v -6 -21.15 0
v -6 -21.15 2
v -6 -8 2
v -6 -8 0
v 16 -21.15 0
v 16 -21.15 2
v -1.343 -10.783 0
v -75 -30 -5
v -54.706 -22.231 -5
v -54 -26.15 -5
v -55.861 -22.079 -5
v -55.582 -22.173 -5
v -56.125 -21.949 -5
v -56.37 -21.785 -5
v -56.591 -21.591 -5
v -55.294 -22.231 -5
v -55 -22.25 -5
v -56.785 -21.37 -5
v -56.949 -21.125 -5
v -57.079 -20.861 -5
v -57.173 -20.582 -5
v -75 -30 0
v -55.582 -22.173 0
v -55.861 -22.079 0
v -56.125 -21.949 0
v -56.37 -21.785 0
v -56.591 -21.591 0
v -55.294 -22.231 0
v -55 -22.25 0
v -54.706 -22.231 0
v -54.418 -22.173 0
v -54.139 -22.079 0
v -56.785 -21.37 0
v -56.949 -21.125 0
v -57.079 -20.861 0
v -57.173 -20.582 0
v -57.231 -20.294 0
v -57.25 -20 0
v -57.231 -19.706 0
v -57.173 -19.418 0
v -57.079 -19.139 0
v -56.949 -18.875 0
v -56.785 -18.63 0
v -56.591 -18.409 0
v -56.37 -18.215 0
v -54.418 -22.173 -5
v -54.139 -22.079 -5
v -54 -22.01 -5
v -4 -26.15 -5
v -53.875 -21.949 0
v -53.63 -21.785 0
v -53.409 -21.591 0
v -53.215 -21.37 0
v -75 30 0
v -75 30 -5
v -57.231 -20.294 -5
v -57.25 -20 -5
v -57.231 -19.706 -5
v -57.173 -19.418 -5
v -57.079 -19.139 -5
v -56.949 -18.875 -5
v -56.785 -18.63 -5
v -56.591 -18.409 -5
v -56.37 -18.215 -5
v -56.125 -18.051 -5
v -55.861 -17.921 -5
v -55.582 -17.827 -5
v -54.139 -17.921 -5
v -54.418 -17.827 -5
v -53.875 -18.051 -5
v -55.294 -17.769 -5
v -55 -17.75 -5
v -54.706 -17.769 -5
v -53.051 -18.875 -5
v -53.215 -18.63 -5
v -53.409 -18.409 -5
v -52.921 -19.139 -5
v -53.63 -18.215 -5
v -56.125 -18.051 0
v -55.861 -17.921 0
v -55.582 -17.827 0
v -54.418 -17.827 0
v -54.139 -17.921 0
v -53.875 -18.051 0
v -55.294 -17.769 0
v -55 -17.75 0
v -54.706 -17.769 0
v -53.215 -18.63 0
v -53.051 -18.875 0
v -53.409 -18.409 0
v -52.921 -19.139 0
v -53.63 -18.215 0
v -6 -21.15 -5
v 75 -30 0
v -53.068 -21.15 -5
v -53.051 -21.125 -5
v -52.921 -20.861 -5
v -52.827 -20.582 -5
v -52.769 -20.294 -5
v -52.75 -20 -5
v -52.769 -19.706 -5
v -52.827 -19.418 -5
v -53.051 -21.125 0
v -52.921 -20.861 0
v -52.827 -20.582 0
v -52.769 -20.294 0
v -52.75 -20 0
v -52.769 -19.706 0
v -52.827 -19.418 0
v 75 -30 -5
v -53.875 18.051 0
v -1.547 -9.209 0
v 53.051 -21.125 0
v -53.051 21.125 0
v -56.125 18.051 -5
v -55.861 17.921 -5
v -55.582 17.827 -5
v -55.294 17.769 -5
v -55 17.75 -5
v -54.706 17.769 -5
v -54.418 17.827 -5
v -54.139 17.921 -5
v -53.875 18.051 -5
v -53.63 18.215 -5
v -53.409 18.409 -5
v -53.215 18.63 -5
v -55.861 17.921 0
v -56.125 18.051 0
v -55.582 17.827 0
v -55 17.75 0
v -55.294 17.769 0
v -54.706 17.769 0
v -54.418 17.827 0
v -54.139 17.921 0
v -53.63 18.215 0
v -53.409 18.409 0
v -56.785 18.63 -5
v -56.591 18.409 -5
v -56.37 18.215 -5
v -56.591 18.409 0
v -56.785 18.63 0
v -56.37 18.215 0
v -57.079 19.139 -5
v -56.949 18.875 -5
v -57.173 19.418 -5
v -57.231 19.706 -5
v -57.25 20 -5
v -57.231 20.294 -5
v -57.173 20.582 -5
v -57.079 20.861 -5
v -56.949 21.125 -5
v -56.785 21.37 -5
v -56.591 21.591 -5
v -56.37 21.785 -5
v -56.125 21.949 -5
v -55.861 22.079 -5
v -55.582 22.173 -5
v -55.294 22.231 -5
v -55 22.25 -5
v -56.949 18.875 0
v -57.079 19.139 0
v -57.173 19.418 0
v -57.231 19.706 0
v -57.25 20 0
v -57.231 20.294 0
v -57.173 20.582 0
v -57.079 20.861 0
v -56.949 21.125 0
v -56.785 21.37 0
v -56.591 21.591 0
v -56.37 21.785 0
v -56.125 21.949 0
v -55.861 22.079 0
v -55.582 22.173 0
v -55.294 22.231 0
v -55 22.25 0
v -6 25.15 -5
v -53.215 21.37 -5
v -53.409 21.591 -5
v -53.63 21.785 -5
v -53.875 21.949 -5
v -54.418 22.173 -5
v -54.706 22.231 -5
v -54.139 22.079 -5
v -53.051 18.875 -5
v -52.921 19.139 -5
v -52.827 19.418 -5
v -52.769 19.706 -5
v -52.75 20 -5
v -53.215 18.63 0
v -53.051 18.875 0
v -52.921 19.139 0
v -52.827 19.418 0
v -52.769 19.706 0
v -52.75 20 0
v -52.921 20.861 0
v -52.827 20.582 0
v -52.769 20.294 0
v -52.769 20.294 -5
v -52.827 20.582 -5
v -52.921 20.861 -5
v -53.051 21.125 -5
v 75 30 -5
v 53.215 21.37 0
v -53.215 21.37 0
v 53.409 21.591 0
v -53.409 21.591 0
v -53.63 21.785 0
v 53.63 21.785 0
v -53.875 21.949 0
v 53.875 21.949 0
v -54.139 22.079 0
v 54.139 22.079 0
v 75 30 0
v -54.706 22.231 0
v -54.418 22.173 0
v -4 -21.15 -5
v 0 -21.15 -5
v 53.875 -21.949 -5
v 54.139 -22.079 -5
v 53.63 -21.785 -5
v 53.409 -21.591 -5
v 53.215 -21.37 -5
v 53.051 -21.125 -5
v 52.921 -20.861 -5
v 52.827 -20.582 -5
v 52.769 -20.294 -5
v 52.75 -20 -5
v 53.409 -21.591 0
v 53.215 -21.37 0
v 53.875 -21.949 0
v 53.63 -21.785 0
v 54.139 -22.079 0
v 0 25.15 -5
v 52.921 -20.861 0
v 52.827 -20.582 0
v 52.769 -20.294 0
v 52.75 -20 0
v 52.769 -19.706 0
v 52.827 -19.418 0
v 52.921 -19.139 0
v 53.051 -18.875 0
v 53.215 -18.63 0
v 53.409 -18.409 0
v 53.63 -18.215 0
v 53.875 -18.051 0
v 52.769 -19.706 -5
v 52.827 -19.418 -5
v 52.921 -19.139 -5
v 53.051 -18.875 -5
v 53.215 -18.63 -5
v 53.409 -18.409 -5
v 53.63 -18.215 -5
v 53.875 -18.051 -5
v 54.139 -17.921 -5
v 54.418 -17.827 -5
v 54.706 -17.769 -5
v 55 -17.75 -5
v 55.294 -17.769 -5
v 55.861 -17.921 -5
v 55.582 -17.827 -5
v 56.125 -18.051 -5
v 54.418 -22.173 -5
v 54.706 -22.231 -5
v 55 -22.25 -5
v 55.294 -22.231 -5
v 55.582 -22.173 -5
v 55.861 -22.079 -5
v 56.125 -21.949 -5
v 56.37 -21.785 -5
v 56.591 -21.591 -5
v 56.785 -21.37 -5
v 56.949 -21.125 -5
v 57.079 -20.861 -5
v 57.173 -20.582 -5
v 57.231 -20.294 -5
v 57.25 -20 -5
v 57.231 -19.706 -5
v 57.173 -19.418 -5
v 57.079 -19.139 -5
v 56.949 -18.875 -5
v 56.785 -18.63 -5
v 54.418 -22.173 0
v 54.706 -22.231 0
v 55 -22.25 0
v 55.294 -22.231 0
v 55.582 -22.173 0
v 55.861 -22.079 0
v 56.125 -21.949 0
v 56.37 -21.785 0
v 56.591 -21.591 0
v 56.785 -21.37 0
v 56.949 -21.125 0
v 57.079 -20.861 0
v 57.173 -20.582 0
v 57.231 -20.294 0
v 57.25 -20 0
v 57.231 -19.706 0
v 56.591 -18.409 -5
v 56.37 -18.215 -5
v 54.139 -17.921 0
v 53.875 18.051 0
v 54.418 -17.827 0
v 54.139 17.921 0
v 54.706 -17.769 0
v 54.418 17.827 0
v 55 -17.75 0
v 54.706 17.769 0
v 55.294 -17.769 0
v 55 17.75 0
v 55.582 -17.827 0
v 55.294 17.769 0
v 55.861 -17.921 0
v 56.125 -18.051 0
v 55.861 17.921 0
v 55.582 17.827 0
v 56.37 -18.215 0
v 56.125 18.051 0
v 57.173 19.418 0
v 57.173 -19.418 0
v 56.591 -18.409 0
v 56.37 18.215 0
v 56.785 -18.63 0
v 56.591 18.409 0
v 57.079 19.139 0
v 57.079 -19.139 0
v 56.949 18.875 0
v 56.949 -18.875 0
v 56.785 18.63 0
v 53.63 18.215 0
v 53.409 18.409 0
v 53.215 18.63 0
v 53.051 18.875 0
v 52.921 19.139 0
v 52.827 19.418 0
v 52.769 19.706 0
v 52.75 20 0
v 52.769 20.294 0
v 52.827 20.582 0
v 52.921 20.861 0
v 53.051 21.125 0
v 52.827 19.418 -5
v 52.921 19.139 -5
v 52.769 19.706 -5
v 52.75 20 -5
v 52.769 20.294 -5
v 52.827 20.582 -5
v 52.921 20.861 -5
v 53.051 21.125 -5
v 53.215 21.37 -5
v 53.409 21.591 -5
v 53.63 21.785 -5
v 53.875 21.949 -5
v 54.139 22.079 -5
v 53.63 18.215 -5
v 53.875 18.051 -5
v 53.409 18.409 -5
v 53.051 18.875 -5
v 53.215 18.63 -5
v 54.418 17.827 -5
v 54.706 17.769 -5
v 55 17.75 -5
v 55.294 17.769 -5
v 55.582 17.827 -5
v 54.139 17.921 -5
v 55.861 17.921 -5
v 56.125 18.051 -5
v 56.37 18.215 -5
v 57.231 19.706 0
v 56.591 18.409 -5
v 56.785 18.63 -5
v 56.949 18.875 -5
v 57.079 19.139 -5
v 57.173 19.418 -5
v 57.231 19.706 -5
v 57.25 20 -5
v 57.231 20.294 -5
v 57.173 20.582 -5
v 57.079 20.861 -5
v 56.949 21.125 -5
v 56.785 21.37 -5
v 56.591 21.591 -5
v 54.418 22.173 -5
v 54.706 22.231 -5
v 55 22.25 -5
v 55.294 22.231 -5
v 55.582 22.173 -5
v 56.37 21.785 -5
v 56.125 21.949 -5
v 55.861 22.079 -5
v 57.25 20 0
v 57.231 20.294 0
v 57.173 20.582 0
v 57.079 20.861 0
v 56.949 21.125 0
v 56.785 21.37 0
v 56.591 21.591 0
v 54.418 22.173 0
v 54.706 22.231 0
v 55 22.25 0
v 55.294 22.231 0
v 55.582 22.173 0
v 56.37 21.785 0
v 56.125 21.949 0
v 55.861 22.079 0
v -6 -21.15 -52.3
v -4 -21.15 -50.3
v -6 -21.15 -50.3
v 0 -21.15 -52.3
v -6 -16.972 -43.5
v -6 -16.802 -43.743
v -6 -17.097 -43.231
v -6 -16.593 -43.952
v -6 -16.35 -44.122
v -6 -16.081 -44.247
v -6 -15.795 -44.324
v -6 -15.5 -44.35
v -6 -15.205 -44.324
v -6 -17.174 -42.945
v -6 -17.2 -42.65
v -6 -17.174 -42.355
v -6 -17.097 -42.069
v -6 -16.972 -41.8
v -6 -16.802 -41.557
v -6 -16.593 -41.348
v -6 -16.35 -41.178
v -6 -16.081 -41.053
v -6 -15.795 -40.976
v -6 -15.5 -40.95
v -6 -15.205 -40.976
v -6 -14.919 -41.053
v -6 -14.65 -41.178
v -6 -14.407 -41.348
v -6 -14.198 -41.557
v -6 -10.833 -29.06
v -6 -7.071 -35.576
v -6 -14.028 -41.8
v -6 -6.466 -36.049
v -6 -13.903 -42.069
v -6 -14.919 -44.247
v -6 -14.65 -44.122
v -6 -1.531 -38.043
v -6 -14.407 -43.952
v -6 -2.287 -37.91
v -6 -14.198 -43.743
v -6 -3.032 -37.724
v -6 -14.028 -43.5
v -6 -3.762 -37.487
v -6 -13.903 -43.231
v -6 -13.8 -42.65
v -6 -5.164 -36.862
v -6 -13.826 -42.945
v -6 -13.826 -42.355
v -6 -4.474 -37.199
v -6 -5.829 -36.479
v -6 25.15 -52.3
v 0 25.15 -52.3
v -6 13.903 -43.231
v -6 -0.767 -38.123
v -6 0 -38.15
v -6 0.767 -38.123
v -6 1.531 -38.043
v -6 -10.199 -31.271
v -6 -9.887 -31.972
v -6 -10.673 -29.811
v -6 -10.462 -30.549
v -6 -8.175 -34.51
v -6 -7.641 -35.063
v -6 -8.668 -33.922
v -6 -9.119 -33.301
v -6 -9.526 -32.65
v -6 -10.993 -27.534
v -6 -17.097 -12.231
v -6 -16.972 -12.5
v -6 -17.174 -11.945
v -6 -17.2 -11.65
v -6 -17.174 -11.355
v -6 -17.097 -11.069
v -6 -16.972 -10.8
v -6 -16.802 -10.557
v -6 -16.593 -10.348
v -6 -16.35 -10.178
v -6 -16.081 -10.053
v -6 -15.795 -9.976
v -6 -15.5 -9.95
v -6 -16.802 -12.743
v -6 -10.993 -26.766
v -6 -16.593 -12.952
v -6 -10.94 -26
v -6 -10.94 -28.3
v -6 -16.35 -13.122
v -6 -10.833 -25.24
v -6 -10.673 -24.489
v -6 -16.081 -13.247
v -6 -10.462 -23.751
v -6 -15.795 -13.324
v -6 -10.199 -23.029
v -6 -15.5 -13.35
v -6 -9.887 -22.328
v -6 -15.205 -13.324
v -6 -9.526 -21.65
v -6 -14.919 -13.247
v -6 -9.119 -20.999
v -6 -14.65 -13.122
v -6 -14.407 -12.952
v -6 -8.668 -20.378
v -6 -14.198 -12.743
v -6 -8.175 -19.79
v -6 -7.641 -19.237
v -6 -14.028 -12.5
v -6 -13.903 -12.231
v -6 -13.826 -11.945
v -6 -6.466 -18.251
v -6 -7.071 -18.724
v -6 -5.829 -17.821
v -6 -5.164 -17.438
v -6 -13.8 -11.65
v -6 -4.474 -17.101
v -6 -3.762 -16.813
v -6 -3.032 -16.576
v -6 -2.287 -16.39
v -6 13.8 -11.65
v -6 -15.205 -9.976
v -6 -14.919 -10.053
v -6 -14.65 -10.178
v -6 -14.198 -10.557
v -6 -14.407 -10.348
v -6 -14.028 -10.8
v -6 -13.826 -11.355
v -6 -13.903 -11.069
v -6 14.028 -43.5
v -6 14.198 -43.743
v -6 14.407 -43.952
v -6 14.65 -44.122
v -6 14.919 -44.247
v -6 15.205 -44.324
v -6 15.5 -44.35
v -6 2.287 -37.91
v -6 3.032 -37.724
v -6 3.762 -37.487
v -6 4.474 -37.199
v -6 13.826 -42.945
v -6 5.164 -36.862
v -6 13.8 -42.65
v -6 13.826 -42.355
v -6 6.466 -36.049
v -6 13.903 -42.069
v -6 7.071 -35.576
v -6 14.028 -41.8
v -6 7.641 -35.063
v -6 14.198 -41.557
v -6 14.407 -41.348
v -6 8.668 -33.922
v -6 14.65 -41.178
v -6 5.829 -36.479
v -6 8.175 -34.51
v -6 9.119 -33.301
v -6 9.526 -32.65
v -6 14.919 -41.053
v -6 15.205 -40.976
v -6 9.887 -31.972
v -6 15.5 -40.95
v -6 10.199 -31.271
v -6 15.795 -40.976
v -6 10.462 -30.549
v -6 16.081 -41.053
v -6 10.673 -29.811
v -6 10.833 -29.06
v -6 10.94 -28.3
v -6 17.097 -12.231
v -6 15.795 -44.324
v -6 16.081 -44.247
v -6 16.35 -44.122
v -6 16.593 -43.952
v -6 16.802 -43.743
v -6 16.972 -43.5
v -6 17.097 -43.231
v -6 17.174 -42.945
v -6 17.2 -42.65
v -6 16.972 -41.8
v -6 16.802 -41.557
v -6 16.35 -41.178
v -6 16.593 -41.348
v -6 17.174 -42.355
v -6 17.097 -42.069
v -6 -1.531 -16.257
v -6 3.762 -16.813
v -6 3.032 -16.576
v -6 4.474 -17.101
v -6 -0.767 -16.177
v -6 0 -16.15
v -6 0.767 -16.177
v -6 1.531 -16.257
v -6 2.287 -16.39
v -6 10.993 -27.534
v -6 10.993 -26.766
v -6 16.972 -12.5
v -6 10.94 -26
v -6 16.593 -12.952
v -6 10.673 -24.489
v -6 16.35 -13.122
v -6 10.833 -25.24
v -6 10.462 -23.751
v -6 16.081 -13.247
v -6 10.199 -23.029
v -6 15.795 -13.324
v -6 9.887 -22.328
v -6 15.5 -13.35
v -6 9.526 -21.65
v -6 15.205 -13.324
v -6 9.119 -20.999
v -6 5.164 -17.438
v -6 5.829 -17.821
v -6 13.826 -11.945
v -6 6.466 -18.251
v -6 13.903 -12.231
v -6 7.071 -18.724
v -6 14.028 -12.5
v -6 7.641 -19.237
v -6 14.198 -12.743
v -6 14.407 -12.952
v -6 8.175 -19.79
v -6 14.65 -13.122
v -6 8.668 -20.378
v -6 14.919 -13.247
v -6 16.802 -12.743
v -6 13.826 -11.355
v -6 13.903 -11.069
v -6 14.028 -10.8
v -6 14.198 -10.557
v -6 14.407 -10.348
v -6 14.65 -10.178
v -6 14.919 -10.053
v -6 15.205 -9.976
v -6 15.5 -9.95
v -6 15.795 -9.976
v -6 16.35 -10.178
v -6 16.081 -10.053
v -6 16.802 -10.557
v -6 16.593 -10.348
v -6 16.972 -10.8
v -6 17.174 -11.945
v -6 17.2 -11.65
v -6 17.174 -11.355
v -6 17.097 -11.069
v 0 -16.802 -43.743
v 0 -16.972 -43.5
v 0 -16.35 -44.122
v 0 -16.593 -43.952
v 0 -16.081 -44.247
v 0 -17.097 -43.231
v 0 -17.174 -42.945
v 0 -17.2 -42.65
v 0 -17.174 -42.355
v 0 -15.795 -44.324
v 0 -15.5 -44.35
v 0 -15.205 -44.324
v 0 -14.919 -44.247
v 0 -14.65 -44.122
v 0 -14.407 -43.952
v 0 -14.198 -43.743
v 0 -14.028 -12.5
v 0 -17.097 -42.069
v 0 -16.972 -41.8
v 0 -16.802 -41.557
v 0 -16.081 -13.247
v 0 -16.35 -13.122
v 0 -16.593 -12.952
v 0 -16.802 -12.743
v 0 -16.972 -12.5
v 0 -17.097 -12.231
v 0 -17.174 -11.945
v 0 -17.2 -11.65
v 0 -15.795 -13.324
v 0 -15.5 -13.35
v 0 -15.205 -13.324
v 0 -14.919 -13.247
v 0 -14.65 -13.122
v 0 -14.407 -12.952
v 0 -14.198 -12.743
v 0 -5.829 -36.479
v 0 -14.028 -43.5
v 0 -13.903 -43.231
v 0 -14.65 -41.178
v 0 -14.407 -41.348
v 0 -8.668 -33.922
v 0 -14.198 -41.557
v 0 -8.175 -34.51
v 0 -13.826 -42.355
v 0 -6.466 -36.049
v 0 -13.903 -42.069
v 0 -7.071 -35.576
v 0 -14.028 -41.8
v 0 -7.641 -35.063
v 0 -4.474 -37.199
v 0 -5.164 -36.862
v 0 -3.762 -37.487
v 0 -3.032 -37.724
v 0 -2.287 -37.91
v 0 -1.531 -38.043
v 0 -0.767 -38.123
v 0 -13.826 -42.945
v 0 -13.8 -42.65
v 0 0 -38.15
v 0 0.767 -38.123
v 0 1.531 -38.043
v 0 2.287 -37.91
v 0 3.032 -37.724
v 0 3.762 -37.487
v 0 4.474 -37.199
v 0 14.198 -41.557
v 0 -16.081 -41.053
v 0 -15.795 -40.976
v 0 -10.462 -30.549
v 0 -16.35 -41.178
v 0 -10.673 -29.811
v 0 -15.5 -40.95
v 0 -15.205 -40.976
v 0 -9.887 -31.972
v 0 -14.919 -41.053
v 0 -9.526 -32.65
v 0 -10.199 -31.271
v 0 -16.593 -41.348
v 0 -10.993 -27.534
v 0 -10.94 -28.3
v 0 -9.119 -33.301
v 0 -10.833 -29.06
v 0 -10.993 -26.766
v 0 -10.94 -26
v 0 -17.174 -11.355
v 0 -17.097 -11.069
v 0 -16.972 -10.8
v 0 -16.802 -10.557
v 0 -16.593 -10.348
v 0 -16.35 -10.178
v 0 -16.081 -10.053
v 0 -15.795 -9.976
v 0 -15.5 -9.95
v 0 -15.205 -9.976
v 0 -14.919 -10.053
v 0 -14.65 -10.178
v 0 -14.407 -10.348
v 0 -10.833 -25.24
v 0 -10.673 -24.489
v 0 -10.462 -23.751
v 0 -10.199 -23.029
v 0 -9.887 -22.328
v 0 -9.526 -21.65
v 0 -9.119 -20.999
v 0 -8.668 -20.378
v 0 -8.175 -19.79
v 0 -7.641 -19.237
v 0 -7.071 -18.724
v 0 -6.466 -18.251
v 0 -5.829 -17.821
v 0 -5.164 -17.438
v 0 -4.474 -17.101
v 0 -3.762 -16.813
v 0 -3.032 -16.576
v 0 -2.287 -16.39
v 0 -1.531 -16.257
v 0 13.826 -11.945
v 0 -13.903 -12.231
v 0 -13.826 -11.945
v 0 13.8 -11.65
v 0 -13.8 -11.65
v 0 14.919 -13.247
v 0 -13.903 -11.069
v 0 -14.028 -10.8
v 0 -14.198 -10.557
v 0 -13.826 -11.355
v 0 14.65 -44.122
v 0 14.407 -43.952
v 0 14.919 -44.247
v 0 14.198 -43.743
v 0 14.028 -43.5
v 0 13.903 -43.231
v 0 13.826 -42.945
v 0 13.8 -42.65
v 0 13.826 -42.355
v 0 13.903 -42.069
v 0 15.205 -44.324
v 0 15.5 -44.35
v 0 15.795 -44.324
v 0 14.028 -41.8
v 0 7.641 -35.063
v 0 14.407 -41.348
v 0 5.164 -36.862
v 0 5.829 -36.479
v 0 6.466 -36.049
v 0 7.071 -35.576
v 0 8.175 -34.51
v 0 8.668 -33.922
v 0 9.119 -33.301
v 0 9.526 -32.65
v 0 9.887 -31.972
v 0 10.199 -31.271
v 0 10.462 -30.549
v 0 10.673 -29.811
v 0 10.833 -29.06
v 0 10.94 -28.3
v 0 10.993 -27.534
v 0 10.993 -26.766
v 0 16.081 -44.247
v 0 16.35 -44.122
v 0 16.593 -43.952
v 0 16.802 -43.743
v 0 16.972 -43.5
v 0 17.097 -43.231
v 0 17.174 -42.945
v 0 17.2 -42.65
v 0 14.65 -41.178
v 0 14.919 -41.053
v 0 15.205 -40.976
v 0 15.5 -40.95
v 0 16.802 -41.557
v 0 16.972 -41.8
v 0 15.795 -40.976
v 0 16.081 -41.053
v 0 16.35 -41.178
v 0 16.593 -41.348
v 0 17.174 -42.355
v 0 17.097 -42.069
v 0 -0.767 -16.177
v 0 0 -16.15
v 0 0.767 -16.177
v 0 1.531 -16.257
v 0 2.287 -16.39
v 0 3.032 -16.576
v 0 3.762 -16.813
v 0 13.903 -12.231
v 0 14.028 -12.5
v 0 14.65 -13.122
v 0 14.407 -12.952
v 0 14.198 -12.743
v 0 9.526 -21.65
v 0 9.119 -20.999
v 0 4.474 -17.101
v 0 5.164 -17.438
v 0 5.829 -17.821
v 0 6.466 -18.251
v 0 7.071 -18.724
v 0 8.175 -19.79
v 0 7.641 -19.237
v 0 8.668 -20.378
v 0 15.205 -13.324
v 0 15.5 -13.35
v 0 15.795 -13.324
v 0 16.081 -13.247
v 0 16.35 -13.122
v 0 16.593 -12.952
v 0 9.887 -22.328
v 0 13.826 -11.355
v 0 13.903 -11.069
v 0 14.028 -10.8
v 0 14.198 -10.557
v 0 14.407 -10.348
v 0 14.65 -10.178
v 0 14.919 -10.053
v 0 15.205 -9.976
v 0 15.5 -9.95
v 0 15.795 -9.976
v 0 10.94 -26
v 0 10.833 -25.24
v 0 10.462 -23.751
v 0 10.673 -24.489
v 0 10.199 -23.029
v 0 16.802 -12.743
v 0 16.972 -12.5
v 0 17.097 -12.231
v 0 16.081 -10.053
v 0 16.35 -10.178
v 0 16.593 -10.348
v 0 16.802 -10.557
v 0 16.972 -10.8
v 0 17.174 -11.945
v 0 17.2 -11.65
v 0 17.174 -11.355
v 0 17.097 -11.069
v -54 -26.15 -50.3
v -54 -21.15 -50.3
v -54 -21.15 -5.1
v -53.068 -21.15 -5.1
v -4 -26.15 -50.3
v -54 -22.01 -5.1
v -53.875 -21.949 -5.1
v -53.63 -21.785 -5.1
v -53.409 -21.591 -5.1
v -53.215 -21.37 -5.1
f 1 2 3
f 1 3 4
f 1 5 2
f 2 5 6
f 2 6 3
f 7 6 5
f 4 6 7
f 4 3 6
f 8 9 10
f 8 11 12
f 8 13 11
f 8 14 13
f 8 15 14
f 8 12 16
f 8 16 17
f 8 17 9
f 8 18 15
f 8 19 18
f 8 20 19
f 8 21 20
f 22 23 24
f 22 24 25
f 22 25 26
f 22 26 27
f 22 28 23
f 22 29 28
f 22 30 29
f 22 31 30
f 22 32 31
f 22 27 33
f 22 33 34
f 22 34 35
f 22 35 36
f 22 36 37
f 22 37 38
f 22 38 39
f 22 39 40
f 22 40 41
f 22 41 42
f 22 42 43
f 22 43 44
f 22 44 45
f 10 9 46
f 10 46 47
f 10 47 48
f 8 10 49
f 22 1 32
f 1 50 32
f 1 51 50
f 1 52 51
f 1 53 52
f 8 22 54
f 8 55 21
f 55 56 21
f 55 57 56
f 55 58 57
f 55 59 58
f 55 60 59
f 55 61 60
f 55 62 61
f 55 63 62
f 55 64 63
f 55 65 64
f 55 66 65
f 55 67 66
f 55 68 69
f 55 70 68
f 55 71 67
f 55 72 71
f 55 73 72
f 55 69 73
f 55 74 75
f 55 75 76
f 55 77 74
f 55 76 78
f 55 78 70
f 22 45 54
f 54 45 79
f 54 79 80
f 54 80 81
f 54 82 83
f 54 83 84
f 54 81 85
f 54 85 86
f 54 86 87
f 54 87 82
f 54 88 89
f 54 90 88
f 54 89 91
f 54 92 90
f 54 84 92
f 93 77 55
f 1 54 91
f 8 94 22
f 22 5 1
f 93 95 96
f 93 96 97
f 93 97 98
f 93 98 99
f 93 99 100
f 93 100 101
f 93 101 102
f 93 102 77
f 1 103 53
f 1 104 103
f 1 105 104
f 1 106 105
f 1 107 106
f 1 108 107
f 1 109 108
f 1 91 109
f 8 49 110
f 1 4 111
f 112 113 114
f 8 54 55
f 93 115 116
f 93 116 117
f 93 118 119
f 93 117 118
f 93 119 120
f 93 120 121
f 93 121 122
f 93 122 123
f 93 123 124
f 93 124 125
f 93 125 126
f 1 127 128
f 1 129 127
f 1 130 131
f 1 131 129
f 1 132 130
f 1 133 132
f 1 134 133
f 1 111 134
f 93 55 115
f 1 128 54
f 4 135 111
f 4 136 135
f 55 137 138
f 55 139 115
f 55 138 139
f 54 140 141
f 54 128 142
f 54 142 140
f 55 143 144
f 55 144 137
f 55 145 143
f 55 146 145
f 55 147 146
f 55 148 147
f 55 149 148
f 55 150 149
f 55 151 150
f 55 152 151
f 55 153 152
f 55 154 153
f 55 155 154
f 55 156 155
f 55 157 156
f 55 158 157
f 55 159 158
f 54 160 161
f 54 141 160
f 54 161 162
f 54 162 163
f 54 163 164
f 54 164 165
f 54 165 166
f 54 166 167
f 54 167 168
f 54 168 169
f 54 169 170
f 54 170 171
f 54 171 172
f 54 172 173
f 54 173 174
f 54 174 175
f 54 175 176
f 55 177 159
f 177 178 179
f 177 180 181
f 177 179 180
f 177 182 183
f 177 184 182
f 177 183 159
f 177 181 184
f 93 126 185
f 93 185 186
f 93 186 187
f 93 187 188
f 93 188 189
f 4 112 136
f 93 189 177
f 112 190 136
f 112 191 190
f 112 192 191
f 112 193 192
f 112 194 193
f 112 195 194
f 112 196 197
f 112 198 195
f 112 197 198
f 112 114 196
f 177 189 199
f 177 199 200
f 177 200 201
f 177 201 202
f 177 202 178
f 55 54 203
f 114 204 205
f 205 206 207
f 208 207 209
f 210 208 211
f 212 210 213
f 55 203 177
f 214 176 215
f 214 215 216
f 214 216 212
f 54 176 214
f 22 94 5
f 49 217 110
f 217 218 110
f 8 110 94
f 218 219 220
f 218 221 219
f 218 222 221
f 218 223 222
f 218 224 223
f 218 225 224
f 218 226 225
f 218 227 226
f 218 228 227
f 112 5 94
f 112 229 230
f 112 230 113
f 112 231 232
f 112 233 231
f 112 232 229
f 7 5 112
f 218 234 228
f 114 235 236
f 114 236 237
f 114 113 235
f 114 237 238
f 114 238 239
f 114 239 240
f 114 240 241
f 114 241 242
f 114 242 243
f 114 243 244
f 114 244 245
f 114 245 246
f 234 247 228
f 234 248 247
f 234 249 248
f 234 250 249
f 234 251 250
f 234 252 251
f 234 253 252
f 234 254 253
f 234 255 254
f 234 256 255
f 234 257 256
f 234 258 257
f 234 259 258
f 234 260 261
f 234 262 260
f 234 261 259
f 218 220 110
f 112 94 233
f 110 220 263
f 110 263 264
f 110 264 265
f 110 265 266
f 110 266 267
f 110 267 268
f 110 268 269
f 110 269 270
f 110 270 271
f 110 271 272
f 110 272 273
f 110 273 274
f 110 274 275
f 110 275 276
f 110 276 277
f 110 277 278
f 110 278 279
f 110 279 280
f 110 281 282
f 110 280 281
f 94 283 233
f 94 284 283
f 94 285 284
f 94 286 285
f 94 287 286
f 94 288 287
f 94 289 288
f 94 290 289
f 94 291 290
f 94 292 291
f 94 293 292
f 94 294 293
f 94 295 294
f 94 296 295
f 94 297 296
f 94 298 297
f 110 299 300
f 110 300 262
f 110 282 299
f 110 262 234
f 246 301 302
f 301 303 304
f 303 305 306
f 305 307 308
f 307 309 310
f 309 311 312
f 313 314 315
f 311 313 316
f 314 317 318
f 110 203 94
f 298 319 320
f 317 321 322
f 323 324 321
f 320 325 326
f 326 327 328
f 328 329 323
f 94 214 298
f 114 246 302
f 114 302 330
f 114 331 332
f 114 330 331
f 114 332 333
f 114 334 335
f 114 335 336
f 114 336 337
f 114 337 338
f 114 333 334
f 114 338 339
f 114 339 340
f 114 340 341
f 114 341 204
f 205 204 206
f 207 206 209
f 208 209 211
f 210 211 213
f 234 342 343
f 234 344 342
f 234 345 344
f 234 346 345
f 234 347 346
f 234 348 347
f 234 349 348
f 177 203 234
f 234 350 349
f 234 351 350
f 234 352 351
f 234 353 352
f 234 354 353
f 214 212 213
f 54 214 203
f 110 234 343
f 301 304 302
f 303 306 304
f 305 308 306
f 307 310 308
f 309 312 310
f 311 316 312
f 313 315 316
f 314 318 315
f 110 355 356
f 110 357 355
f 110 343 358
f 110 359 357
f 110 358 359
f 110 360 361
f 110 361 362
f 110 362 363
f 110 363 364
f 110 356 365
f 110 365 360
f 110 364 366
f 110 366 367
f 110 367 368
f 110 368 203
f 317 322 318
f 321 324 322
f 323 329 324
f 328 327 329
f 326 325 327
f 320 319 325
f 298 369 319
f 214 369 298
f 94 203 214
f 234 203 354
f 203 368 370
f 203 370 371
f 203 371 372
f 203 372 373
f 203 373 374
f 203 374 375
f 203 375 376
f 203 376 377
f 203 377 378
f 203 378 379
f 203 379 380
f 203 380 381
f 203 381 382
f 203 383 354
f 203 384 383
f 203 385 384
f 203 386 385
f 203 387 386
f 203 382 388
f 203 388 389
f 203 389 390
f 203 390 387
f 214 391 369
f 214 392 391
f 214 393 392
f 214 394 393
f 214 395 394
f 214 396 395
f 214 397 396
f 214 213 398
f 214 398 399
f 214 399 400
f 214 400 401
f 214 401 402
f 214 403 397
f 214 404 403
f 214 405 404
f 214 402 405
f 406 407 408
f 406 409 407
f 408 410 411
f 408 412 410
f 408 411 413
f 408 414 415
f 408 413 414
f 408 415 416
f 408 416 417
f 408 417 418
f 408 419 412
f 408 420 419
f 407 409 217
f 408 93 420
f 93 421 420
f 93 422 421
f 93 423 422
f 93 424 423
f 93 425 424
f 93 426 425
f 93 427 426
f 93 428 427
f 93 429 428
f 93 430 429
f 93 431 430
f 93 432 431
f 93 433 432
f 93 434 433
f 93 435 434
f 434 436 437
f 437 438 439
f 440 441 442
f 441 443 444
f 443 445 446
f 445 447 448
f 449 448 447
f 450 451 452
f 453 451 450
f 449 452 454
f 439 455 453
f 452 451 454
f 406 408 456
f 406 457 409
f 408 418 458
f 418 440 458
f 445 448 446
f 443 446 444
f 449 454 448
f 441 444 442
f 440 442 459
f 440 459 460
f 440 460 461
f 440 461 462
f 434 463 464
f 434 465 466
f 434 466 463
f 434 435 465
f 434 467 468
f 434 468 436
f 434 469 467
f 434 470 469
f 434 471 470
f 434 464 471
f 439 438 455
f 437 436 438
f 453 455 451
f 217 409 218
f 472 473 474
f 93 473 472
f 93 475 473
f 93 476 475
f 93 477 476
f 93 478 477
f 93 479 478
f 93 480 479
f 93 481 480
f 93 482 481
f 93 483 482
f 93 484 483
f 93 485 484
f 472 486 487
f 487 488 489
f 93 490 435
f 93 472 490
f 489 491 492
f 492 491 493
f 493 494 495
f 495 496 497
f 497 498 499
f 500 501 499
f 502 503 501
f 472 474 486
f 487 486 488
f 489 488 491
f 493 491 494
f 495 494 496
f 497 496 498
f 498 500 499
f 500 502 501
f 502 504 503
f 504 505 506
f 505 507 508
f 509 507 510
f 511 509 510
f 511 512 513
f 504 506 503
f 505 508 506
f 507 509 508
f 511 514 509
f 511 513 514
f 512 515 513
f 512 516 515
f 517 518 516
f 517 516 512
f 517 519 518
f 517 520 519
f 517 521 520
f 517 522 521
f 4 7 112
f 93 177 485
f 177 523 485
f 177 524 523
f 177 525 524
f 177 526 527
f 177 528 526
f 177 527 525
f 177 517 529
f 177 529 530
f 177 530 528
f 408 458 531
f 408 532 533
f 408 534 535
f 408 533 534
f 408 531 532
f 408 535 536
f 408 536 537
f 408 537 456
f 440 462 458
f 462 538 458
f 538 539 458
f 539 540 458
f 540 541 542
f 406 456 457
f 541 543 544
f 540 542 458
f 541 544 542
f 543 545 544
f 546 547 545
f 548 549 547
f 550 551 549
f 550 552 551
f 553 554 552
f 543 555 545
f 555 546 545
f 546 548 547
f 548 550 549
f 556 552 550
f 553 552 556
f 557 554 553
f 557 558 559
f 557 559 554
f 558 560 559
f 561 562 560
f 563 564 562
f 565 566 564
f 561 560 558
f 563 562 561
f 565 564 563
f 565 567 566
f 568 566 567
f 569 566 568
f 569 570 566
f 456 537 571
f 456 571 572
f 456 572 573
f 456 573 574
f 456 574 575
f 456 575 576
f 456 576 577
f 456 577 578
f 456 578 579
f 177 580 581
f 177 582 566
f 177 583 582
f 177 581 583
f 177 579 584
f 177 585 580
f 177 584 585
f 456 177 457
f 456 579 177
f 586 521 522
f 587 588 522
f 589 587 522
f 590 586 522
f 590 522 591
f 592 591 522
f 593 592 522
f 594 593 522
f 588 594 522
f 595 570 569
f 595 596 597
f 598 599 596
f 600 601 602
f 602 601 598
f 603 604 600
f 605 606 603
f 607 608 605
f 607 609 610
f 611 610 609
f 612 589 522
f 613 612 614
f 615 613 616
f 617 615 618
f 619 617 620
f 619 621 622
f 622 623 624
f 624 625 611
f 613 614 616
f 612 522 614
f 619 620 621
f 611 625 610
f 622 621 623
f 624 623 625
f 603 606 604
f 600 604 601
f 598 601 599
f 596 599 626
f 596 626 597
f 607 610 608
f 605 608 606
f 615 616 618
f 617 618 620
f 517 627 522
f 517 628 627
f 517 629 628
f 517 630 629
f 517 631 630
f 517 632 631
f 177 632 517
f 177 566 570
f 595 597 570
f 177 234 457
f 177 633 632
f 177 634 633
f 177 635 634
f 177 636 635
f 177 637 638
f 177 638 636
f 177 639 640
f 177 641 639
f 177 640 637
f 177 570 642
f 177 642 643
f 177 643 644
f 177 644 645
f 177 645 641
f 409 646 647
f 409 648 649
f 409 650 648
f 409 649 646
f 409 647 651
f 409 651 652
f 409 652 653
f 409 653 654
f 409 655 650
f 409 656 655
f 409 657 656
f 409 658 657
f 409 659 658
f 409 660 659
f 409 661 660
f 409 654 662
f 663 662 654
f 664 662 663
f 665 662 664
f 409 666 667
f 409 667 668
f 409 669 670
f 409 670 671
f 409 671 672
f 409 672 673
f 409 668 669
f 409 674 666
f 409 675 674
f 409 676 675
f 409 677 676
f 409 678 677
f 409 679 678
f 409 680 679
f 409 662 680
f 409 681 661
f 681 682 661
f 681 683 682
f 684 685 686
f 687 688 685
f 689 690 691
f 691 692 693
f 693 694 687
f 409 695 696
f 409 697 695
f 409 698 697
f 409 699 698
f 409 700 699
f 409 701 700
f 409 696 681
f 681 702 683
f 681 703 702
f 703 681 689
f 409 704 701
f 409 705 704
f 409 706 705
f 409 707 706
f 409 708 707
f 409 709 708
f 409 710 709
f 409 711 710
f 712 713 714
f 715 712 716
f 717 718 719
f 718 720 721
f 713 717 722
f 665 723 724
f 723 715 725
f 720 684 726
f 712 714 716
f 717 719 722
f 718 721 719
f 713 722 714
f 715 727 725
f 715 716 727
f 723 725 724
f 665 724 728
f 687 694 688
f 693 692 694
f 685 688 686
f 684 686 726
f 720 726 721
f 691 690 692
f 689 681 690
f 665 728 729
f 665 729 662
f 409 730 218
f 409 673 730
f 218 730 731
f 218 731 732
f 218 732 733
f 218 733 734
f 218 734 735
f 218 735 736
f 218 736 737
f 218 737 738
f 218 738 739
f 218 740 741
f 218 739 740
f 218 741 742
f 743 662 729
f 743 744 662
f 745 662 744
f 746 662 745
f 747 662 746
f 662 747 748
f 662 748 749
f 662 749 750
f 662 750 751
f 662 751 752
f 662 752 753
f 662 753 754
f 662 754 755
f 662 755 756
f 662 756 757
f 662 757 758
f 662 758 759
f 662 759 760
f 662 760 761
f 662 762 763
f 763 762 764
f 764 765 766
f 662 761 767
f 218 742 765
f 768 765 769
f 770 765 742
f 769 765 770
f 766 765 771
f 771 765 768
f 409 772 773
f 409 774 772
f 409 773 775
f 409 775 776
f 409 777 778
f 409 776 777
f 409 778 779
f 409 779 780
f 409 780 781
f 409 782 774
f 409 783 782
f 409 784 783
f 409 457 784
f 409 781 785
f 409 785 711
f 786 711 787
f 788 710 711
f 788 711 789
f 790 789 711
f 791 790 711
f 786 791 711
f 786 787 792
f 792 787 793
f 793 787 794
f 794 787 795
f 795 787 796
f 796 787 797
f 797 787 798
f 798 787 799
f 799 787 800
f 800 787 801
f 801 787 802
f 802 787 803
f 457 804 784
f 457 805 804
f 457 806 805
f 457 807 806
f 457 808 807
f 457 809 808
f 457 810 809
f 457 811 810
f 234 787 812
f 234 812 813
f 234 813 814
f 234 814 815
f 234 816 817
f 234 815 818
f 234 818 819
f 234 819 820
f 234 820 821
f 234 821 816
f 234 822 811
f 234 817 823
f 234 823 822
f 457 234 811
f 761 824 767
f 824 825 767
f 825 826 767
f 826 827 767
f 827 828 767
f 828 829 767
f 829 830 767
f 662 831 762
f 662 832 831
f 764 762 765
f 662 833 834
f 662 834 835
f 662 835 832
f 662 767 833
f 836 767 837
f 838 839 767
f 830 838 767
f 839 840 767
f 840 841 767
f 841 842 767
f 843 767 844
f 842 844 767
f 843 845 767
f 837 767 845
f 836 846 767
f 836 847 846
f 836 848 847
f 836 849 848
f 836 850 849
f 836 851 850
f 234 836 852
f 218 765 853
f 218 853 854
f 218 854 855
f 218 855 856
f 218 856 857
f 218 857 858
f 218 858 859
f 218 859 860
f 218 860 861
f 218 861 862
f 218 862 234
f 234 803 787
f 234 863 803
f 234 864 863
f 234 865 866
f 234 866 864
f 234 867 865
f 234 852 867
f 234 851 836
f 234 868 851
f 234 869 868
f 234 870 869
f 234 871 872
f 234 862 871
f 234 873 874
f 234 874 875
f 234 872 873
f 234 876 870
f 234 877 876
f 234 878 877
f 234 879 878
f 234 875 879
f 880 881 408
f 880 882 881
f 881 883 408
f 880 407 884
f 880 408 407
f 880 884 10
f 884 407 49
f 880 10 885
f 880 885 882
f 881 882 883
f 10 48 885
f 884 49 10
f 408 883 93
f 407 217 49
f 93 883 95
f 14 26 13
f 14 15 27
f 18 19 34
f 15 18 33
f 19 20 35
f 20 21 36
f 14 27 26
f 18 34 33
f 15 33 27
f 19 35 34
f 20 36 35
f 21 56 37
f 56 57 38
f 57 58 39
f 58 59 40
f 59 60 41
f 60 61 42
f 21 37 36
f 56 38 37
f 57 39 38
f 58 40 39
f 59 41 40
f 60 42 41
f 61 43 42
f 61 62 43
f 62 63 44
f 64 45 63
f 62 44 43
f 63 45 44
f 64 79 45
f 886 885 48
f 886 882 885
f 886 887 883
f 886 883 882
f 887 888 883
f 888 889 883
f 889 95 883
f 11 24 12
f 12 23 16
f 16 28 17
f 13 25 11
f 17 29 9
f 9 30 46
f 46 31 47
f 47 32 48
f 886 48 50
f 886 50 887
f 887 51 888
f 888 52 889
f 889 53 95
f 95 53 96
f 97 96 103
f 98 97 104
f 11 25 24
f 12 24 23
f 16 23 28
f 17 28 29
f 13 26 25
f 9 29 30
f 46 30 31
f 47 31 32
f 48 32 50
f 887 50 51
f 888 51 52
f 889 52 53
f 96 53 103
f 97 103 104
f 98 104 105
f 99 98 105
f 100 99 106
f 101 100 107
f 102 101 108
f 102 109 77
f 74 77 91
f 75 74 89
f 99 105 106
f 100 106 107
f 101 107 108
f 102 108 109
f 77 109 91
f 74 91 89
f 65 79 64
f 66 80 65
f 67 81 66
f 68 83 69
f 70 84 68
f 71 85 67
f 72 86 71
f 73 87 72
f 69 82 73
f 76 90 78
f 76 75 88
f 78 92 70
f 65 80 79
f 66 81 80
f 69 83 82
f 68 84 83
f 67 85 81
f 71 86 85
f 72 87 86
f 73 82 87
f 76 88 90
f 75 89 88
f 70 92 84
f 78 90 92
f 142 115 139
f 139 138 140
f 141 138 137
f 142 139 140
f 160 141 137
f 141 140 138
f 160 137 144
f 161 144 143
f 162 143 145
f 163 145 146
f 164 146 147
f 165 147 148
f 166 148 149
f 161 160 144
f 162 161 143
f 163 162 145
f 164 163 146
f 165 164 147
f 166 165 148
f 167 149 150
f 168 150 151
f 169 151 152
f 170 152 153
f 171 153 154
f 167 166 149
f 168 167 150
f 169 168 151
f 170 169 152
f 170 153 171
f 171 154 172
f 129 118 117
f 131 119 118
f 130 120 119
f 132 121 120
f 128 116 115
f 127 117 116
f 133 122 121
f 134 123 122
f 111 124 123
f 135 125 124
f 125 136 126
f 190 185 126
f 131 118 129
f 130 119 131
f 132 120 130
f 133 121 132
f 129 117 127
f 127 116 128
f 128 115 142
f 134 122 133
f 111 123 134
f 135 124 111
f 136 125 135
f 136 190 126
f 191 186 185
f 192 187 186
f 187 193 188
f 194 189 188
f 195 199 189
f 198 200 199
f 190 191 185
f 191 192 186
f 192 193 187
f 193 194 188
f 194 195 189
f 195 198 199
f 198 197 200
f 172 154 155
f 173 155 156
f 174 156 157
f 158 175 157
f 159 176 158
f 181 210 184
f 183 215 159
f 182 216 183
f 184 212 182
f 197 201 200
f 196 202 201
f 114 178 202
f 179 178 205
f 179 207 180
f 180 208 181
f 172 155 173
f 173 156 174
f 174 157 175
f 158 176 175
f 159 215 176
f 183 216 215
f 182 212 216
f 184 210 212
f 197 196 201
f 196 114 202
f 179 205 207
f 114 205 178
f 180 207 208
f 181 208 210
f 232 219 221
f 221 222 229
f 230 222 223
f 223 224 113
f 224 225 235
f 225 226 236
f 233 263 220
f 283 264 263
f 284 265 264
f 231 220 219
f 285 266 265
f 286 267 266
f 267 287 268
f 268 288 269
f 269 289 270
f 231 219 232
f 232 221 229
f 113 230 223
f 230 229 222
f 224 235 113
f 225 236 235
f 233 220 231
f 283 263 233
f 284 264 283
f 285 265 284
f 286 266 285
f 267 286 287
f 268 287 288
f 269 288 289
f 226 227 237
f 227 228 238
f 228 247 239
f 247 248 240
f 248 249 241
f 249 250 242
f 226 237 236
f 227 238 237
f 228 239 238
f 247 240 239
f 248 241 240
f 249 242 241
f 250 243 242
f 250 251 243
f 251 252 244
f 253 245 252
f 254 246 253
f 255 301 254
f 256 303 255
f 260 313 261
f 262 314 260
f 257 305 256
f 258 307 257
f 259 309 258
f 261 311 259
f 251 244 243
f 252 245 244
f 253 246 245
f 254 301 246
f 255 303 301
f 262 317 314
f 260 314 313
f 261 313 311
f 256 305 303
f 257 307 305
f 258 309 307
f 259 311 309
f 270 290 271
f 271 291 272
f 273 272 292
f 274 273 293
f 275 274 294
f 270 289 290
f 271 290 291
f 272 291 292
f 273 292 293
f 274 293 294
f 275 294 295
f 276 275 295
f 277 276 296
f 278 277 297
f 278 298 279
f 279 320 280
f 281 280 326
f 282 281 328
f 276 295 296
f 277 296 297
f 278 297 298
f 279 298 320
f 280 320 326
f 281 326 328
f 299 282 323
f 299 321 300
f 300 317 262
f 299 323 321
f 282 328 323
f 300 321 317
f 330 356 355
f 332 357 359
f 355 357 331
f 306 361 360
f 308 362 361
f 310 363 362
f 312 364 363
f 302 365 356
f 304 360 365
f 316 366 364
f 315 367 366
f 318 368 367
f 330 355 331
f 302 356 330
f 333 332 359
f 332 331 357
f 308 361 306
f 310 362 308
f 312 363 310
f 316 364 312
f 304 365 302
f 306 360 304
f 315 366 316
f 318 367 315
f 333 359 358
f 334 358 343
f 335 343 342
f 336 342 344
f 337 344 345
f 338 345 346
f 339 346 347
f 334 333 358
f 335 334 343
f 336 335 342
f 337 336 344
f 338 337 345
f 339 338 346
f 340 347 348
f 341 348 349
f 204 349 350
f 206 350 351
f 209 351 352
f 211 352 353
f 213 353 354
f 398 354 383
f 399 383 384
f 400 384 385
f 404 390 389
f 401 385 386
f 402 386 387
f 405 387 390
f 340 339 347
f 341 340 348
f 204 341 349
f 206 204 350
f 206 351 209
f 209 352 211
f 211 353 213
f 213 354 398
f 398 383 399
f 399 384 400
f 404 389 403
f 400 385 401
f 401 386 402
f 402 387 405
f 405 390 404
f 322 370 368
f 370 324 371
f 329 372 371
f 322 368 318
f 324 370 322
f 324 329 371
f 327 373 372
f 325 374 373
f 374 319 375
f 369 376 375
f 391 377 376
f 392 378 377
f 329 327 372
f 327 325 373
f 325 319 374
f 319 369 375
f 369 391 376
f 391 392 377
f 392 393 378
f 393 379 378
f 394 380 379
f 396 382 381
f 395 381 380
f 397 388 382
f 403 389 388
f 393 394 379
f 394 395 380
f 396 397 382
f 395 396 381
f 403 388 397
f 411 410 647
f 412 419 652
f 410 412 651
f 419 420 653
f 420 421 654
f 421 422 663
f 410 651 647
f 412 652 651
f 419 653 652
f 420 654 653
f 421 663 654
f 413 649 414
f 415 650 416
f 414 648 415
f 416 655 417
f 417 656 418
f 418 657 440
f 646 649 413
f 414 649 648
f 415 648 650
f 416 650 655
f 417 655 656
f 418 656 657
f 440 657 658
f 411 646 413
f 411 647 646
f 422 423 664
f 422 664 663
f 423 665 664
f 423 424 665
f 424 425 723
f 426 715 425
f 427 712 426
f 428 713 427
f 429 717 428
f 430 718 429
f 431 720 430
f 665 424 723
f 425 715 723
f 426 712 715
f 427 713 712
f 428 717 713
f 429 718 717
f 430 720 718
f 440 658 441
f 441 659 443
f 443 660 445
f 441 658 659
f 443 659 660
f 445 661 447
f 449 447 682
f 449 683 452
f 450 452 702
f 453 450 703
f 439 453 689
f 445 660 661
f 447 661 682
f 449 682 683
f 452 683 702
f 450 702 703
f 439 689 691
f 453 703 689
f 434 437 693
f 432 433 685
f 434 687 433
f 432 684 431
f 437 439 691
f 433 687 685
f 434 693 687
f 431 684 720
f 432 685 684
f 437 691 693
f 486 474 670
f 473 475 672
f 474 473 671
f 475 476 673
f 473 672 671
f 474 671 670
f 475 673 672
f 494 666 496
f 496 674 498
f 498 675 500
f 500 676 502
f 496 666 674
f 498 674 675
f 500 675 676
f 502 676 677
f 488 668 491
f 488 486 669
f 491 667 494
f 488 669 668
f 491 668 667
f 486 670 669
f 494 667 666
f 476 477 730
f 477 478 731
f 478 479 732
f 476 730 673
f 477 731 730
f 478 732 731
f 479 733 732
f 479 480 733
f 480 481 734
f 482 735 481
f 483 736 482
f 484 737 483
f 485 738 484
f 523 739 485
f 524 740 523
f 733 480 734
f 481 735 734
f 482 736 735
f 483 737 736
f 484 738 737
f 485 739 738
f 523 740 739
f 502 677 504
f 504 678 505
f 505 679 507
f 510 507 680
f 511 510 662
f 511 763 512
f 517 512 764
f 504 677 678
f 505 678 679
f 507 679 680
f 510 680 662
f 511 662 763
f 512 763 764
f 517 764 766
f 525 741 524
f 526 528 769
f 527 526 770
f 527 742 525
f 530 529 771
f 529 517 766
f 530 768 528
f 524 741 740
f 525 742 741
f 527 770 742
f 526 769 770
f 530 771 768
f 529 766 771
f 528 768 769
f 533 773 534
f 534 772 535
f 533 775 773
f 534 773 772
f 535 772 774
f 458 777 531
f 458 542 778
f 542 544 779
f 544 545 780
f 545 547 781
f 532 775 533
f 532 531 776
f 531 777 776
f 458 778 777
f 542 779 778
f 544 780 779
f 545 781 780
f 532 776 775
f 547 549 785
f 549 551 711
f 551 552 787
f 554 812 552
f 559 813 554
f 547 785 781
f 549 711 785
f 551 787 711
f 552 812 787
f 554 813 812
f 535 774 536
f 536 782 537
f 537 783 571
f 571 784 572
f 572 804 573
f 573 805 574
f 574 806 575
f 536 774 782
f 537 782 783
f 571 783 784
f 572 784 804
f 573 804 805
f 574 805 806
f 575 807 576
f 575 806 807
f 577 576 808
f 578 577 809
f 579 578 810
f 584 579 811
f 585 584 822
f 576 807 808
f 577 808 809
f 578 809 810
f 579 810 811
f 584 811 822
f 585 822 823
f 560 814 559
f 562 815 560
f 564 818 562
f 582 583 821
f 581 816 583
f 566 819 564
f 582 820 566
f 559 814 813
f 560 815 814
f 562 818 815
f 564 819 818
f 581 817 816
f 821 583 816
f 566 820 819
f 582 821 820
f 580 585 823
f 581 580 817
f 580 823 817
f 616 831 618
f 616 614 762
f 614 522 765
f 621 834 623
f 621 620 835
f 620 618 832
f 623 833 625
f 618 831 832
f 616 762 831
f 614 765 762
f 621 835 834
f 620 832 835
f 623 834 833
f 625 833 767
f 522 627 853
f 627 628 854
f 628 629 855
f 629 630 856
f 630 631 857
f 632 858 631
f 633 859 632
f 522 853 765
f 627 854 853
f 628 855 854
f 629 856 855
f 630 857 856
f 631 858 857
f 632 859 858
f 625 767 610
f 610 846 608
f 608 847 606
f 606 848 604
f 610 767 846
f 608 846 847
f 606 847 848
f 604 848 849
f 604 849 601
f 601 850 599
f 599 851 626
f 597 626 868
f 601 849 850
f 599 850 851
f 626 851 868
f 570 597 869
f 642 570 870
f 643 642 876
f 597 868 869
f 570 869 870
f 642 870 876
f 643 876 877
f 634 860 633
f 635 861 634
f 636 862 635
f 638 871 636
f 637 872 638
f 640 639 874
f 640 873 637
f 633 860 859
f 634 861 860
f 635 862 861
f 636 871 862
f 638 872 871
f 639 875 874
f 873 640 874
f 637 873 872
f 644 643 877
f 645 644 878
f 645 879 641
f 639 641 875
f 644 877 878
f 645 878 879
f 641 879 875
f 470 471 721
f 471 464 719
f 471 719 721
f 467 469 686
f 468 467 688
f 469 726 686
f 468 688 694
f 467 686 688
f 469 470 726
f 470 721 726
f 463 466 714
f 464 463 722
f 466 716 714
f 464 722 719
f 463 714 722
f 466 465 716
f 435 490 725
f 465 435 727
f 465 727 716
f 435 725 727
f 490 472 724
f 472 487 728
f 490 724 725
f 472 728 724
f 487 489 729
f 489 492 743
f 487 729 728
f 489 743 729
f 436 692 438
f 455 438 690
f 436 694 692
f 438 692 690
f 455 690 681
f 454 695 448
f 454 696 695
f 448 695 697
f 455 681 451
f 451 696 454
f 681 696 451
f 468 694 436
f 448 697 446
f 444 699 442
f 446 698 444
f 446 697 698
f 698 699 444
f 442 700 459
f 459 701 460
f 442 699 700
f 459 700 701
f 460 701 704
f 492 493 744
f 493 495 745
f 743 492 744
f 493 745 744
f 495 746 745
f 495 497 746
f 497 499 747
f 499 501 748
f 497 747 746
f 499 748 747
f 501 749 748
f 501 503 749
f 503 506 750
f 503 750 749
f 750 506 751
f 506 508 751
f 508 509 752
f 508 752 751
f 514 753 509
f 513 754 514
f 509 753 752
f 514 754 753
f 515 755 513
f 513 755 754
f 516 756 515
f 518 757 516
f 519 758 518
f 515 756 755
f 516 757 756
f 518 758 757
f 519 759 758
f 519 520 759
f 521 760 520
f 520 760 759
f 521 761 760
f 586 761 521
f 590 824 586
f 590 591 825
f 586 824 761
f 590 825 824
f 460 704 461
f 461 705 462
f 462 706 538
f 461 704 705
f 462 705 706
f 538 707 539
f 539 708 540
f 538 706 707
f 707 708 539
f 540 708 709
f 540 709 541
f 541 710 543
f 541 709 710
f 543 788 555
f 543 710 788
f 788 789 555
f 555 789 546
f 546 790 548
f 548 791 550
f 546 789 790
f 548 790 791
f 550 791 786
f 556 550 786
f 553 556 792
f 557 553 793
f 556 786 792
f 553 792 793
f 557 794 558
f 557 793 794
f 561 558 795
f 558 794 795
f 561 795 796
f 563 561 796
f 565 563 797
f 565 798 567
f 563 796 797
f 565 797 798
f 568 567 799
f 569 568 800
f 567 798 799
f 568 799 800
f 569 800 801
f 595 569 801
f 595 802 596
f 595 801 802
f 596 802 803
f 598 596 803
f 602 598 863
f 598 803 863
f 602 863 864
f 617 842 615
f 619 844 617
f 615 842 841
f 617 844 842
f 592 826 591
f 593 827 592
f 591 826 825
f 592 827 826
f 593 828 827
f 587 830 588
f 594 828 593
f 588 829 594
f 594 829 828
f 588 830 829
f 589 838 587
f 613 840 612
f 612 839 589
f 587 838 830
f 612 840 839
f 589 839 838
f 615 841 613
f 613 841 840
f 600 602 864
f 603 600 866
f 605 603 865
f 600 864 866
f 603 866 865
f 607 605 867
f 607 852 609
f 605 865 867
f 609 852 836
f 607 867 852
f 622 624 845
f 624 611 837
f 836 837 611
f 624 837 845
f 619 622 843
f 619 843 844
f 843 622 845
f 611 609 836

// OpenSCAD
// file: ../../cad/common.scad
// Common parameters for the window-opener brackets.
//
// Units: millimetres. All parts share these values so changes propagate.
// Render with:
//   openscad -o sash-bracket.stl sash-bracket.scad
//   openscad -o frame-bracket.stl frame-bracket.scad

// -------- hole / clearance sizes --------
M4_HOLE      = 4.5;   // self-tapper clearance in PVC
M6_CLEAR     = 6.5;   // clearance for M6 rod-end shank
M6_TAP       = 5.0;   // tap drill for M6 (tap-to-size in post)

// -------- target window --------
// Reference only — used by consumers of these bracket CAD files.
WIN_WIDTH    = 845;
WIN_HEIGHT   = 1325;
D_FROM_HINGE = 120;   // moving-anchor offset from the hinge side

// -------- KP08 pillow-block bearing (per grema3d datasheet, 2026-05-13) --------
// Datasheet variable names (KP08 column, shaft d = 8 mm):
//   L  = 55  total base width PERPENDICULAR to bore
//   A  = 13  body width ALONG bore (the bearing axis)
//   J  = 42  bolt-hole spacing (c-to-c)
//   N  = 5   bolt-hole diameter (M5)
//   H  = 14  base bottom → bore centre  (CRITICAL — was 17 in earlier guess)
//   H1 = 5   base thickness
//   H2 = 28  total height
//
// SCAD variable names retained for backwards-compat with rig-*.scad files,
// but their MEANINGS are now spec-driven, not measured-guess:
//   KP08_BASE_L      → L  (along Y, perpendicular to lead screw)
//   KP08_BASE_W      → A  (along X, along lead screw)
//   KP08_HOLE_SPACING → J
//   KP08_HOLE_D       → N (M5 clearance)
//   KP08_BORE_HEIGHT  → H
//   KP08_BODY_W       → body width along Y (perpendicular to bore)
//   KP08_TOTAL_H      → H2
KP08_BASE_L       = 55;       // L — base width perpendicular to bore
KP08_BASE_W       = 13;       // A — width ALONG bore axis (NB: lead screw direction)
KP08_HOLE_SPACING = 42;       // J — bolt-hole c-to-c
KP08_HOLE_D       = 5.5;      // M5 clearance (N = 5 mm bolt, + a hair)
KP08_HOLE_SLOT_L  = 8;        // slot length (legacy; some KP08s have slotted holes)
KP08_BORE_HEIGHT  = 14;       // H — base bottom to bore centre
KP08_BODY_W       = 30;       // approximate body width perpendicular to bore
KP08_TOTAL_H      = 28;       // H2 — total height

// -------- Prusa MK3 brass nut (per piese3d datasheet, 2026-05-13) --------
// Datasheet (Tr8x8 brass nut for MK3):
//   Flange OD      = 25       (was incorrectly measured as 19 — 19 is the
//                              bolt-hole *circle* diameter, not the flange OD)
//   Flange thk     = 4
//   Body OD        = 10
//   Body length    = 10
//   Total length   = 14       (= flange thk + body length)
//   Bolt circle    = Ø19      with 4 holes at 90°: 2× M3 threaded
//                              (vertically opposed) + 2× Ø4.1 clearance
//                              (horizontally opposed)
PRUSA_NUT_FLANGE_D       = 25;     // outer flange OD
PRUSA_NUT_FLANGE_THK     = 4;
PRUSA_NUT_BODY_D         = 10;
PRUSA_NUT_BODY_L         = 10;
PRUSA_NUT_TOTAL_L        = PRUSA_NUT_FLANGE_THK + PRUSA_NUT_BODY_L; // 14
PRUSA_NUT_BOLT_CIRCLE_D  = 19;     // diameter on which the 4 holes sit
PRUSA_NUT_M3_HOLE_D      = 3.4;    // M3 clearance (for the carriage side)
PRUSA_NUT_CLEAR_HOLE_D   = 4.1;    // the 2× Ø4.1 holes in the nut flange

// Legacy alias retained so existing rig-carriage.scad keeps compiling.
// Square-pattern spacing equivalent to the 19 mm bolt circle (diagonal 19,
// side = 19/√2 ≈ 13.43). Update rig-carriage.scad to use BOLT_CIRCLE_D for
// the correct alternating-hole pattern; this approximation gets close.
PRUSA_NUT_M3_SPACING     = 13.43;

// -------- LDO 42STH48-1684MAC NEMA17 (per LDO datasheet, 2026-05-13) --------
// Per the official LDO drawing (kb-3d datasheet):
//   Face            42.3 × 42.3 MAX
//   Body length     48 MAX
//   Mounting holes  4× M3 on 31 × 31 mm pattern, depth 4.5 min
//   Pilot boss      Ø22 (-0/-0.052)            ← was 22.5 in earlier guess
//   Shaft           Ø5 -0.002/-0.012, 24 ± 0.5 long
//   Shaft has a 15 mm flat (D-cut), 4.5 mm deep — not modelled here
NEMA17_FACE         = 42.3;
NEMA17_BODY_L       = 48;
NEMA17_HOLE_SPACING = 31;
NEMA17_HOLE_D       = 3.4;     // M3 clearance
NEMA17_HOLE_DEPTH   = 4.5;     // minimum tap depth into the motor face
NEMA17_BORE_D       = 22;      // pilot-boss OD (fits matching counterbore)
NEMA17_SHAFT_D      = 5;
NEMA17_SHAFT_L      = 24;
NEMA17_SHAFT_FLAT_L = 15;      // D-cut flat length, for coupler grip
NEMA17_SHAFT_FLAT_D = 4.5;     // D-cut depth from full Ø

// -------- Coupler --------
COUPLER_OD = 19;
COUPLER_L  = 25;

// -------- Lead screw --------
LEAD_SCREW_D    = 8;       // Tr8x8 outer diameter
LEAD_SCREW_LEAD = 8;       // 8 mm linear travel per revolution

// -------- bracket common --------
BRACKET_WIDTH  = 190;  // along the top rail (X axis in both parts)
PLATE_THK      = 5;    // plate wall thickness
PRINT_CLR      = 0.2;  // generic printer tolerance

// Render resolution — fine enough for holes, cheap enough for iteration.
$fa = 4;
$fs = 0.3;
// main file
// v2 sash-side motor mount.
//
// L-bracket that bolts to the sash top rail (4× M4 self-tappers, VHB
// tape on the back) and carries the NEMA17 motor (4× M3 in the
// standard 31×31 pattern). The motor's shaft points along the rail,
// toward the frame anchor at the top-middle of the window. From the
// motor's faceplate, the shaft connects to a Ø5–Ø8 universal joint,
// then to the lead screw — both off-bracket.
//
// Coordinate convention (bracket local):
//   X axis: along the lead screw / sash top rail, +X = toward the frame anchor
//   Y axis: vertical (parallel to gravity when installed), +Y = up
//   Z axis: perpendicular to the sash face, +Z = into the room
//
// Origin: at the center of the motor mount wall's +X face (where the
// shaft exits). The motor body sits at X < 0, sash plate at X > 0.
//
// Print orientation: sash plate flat on the bed (Z = 0 side down).
// The motor mount wall rises in print +Z. Floor + gussets under the
// motor body need supports under their X-direction overhangs.
//
// Render:   openscad -o ../stl/sash-motor-mount.stl sash-motor-mount.scad

include <../../cad/common.scad>;

// ---- design parameters ----
PLATE_W           = 150;    // X length of sash mounting plate
PLATE_H           = 60;     // Y height of sash mounting plate
SASH_PLATE_THK    = 5;      // Z thickness of sash plate
WALL_THK          = 6;      // X thickness of motor mount wall
SCREW_INSET_X     = 20;     // M4 self-tapper inset from short edges
SCREW_INSET_Y     = 10;     // M4 self-tapper inset from long edges
GUSSET_T          = 4;      // gusset rib thickness
GUSSET_LEG        = 22;
MOTOR_FLOOR_EXT   = NEMA17_BODY_L + 2;  // floor under motor body in -X

// ---- derived geometry ----
SHAFT_Y           = 0;
FLOOR_TOP_Y       = SHAFT_Y - NEMA17_FACE / 2;       // -21.15: motor sits on floor
FLOOR_BOTTOM_Y    = FLOOR_TOP_Y - SASH_PLATE_THK;    // -26.15: matches plate Z thickness
SHAFT_Z           = -(NEMA17_FACE / 2 + 6);          // motor body in -Z, sash plate at Z=0

// Wall extends a bit above and below the motor face so the M3 holes
// have a few mm of material around them.
WALL_Y_TOP        = SHAFT_Y + NEMA17_FACE / 2 + 4;   // = 25.15
WALL_Y_BOT        = FLOOR_TOP_Y;                     // = -21.15 — joins motor floor
WALL_Z_OUTER      = SHAFT_Z - NEMA17_FACE / 2 - 4;   // -31.15: behind the motor body
WALL_Z_INNER      = 0;                               // toward the sash plate

// Sash plate sits AGAINST the sash room-side face. Plate occupies the
// X range covered by the bracket; the motor body extends in -X beyond
// the plate's -X edge.
SASH_PLATE_X_MIN  = -PLATE_W / 2;
SASH_PLATE_X_MAX  =  PLATE_W / 2;
SASH_PLATE_Z_MAX  = 0;
SASH_PLATE_Z_MIN  = -SASH_PLATE_THK;

// Motor faceplate sits at X = -WALL_THK (against the wall's -X face);
// motor body extends 48 mm further in -X. Shaft exits the wall at X = 0
// and continues another (NEMA17_SHAFT_L - WALL_THK) = 18 mm into open
// air, where the U-joint picks it up.
MOTOR_FACE_X      = -WALL_THK;
MOTOR_BACK_X      = MOTOR_FACE_X - NEMA17_BODY_L;
SHAFT_TIP_X       = MOTOR_FACE_X + NEMA17_SHAFT_L;   // 18

// Small "floor" under the motor body — supports its weight so the
// M3 mounting bolts don't carry the full cantilever moment. Floor
// sits between motor bottom and where the sash plate would be.
FLOOR_Z_MIN       = SHAFT_Z - NEMA17_FACE / 2 - 2;
FLOOR_Z_MAX       = SHAFT_Z + NEMA17_FACE / 2 + 2;
FLOOR_BOT_Y       = FLOOR_TOP_Y - SASH_PLATE_THK;

module sash_motor_mount() {
  difference() {
    union() {
      // Sash plate (against sash room-side face).
      translate([SASH_PLATE_X_MIN, -PLATE_H / 2, SASH_PLATE_Z_MIN])
        cube([PLATE_W, PLATE_H, SASH_PLATE_THK]);

      // Motor mount wall (perpendicular to the screw axis).
      translate([-WALL_THK, WALL_Y_BOT, WALL_Z_OUTER])
        cube([WALL_THK, WALL_Y_TOP - WALL_Y_BOT, WALL_Z_INNER - WALL_Z_OUTER]);

      // Floor under motor body — supports the cantilever weight.
      translate([MOTOR_BACK_X, FLOOR_BOT_Y, FLOOR_Z_MIN])
        cube([MOTOR_FLOOR_EXT, SASH_PLATE_THK, FLOOR_Z_MAX - FLOOR_Z_MIN]);

      // Connector ribs from the motor mount wall down to the sash plate
      // (one above, one below the motor body) so the wall doesn't just
      // cantilever off the plate at one edge.
      for (zsign = [-1, 1]) {
        translate([-WALL_THK,
                   FLOOR_TOP_Y,
                   zsign > 0 ? -GUSSET_T / 2 : -GUSSET_T / 2])
          linear_extrude(GUSSET_T)
            polygon([
              [0, 0],
              [0, -PLATE_H / 2 - FLOOR_TOP_Y + GUSSET_LEG],
              [GUSSET_LEG, 0]]);
      }
    }

    // ---- removals ----

    // M4 self-tapper holes through the sash plate, four corners.
    for (x = [SASH_PLATE_X_MIN + SCREW_INSET_X, SASH_PLATE_X_MAX - SCREW_INSET_X])
      for (y = [-PLATE_H / 2 + SCREW_INSET_Y, PLATE_H / 2 - SCREW_INSET_Y])
        translate([x, y, SASH_PLATE_Z_MIN - 0.1])
          cylinder(h = SASH_PLATE_THK + 0.2, d = M4_HOLE);

    // Motor shaft clearance bore through the wall.
    translate([-WALL_THK - 1, SHAFT_Y, SHAFT_Z])
      rotate([0, 90, 0])
        cylinder(d = NEMA17_BORE_D, h = WALL_THK + 2);

    // 4× M3 motor mount holes (31 × 31 pattern around the shaft).
    for (dy = [-NEMA17_HOLE_SPACING / 2, NEMA17_HOLE_SPACING / 2])
      for (dz = [-NEMA17_HOLE_SPACING / 2, NEMA17_HOLE_SPACING / 2])
        translate([-WALL_THK - 1, SHAFT_Y + dy, SHAFT_Z + dz])
          rotate([0, 90, 0])
            cylinder(d = NEMA17_HOLE_D, h = WALL_THK + 2);
  }
}

sash_motor_mount();
